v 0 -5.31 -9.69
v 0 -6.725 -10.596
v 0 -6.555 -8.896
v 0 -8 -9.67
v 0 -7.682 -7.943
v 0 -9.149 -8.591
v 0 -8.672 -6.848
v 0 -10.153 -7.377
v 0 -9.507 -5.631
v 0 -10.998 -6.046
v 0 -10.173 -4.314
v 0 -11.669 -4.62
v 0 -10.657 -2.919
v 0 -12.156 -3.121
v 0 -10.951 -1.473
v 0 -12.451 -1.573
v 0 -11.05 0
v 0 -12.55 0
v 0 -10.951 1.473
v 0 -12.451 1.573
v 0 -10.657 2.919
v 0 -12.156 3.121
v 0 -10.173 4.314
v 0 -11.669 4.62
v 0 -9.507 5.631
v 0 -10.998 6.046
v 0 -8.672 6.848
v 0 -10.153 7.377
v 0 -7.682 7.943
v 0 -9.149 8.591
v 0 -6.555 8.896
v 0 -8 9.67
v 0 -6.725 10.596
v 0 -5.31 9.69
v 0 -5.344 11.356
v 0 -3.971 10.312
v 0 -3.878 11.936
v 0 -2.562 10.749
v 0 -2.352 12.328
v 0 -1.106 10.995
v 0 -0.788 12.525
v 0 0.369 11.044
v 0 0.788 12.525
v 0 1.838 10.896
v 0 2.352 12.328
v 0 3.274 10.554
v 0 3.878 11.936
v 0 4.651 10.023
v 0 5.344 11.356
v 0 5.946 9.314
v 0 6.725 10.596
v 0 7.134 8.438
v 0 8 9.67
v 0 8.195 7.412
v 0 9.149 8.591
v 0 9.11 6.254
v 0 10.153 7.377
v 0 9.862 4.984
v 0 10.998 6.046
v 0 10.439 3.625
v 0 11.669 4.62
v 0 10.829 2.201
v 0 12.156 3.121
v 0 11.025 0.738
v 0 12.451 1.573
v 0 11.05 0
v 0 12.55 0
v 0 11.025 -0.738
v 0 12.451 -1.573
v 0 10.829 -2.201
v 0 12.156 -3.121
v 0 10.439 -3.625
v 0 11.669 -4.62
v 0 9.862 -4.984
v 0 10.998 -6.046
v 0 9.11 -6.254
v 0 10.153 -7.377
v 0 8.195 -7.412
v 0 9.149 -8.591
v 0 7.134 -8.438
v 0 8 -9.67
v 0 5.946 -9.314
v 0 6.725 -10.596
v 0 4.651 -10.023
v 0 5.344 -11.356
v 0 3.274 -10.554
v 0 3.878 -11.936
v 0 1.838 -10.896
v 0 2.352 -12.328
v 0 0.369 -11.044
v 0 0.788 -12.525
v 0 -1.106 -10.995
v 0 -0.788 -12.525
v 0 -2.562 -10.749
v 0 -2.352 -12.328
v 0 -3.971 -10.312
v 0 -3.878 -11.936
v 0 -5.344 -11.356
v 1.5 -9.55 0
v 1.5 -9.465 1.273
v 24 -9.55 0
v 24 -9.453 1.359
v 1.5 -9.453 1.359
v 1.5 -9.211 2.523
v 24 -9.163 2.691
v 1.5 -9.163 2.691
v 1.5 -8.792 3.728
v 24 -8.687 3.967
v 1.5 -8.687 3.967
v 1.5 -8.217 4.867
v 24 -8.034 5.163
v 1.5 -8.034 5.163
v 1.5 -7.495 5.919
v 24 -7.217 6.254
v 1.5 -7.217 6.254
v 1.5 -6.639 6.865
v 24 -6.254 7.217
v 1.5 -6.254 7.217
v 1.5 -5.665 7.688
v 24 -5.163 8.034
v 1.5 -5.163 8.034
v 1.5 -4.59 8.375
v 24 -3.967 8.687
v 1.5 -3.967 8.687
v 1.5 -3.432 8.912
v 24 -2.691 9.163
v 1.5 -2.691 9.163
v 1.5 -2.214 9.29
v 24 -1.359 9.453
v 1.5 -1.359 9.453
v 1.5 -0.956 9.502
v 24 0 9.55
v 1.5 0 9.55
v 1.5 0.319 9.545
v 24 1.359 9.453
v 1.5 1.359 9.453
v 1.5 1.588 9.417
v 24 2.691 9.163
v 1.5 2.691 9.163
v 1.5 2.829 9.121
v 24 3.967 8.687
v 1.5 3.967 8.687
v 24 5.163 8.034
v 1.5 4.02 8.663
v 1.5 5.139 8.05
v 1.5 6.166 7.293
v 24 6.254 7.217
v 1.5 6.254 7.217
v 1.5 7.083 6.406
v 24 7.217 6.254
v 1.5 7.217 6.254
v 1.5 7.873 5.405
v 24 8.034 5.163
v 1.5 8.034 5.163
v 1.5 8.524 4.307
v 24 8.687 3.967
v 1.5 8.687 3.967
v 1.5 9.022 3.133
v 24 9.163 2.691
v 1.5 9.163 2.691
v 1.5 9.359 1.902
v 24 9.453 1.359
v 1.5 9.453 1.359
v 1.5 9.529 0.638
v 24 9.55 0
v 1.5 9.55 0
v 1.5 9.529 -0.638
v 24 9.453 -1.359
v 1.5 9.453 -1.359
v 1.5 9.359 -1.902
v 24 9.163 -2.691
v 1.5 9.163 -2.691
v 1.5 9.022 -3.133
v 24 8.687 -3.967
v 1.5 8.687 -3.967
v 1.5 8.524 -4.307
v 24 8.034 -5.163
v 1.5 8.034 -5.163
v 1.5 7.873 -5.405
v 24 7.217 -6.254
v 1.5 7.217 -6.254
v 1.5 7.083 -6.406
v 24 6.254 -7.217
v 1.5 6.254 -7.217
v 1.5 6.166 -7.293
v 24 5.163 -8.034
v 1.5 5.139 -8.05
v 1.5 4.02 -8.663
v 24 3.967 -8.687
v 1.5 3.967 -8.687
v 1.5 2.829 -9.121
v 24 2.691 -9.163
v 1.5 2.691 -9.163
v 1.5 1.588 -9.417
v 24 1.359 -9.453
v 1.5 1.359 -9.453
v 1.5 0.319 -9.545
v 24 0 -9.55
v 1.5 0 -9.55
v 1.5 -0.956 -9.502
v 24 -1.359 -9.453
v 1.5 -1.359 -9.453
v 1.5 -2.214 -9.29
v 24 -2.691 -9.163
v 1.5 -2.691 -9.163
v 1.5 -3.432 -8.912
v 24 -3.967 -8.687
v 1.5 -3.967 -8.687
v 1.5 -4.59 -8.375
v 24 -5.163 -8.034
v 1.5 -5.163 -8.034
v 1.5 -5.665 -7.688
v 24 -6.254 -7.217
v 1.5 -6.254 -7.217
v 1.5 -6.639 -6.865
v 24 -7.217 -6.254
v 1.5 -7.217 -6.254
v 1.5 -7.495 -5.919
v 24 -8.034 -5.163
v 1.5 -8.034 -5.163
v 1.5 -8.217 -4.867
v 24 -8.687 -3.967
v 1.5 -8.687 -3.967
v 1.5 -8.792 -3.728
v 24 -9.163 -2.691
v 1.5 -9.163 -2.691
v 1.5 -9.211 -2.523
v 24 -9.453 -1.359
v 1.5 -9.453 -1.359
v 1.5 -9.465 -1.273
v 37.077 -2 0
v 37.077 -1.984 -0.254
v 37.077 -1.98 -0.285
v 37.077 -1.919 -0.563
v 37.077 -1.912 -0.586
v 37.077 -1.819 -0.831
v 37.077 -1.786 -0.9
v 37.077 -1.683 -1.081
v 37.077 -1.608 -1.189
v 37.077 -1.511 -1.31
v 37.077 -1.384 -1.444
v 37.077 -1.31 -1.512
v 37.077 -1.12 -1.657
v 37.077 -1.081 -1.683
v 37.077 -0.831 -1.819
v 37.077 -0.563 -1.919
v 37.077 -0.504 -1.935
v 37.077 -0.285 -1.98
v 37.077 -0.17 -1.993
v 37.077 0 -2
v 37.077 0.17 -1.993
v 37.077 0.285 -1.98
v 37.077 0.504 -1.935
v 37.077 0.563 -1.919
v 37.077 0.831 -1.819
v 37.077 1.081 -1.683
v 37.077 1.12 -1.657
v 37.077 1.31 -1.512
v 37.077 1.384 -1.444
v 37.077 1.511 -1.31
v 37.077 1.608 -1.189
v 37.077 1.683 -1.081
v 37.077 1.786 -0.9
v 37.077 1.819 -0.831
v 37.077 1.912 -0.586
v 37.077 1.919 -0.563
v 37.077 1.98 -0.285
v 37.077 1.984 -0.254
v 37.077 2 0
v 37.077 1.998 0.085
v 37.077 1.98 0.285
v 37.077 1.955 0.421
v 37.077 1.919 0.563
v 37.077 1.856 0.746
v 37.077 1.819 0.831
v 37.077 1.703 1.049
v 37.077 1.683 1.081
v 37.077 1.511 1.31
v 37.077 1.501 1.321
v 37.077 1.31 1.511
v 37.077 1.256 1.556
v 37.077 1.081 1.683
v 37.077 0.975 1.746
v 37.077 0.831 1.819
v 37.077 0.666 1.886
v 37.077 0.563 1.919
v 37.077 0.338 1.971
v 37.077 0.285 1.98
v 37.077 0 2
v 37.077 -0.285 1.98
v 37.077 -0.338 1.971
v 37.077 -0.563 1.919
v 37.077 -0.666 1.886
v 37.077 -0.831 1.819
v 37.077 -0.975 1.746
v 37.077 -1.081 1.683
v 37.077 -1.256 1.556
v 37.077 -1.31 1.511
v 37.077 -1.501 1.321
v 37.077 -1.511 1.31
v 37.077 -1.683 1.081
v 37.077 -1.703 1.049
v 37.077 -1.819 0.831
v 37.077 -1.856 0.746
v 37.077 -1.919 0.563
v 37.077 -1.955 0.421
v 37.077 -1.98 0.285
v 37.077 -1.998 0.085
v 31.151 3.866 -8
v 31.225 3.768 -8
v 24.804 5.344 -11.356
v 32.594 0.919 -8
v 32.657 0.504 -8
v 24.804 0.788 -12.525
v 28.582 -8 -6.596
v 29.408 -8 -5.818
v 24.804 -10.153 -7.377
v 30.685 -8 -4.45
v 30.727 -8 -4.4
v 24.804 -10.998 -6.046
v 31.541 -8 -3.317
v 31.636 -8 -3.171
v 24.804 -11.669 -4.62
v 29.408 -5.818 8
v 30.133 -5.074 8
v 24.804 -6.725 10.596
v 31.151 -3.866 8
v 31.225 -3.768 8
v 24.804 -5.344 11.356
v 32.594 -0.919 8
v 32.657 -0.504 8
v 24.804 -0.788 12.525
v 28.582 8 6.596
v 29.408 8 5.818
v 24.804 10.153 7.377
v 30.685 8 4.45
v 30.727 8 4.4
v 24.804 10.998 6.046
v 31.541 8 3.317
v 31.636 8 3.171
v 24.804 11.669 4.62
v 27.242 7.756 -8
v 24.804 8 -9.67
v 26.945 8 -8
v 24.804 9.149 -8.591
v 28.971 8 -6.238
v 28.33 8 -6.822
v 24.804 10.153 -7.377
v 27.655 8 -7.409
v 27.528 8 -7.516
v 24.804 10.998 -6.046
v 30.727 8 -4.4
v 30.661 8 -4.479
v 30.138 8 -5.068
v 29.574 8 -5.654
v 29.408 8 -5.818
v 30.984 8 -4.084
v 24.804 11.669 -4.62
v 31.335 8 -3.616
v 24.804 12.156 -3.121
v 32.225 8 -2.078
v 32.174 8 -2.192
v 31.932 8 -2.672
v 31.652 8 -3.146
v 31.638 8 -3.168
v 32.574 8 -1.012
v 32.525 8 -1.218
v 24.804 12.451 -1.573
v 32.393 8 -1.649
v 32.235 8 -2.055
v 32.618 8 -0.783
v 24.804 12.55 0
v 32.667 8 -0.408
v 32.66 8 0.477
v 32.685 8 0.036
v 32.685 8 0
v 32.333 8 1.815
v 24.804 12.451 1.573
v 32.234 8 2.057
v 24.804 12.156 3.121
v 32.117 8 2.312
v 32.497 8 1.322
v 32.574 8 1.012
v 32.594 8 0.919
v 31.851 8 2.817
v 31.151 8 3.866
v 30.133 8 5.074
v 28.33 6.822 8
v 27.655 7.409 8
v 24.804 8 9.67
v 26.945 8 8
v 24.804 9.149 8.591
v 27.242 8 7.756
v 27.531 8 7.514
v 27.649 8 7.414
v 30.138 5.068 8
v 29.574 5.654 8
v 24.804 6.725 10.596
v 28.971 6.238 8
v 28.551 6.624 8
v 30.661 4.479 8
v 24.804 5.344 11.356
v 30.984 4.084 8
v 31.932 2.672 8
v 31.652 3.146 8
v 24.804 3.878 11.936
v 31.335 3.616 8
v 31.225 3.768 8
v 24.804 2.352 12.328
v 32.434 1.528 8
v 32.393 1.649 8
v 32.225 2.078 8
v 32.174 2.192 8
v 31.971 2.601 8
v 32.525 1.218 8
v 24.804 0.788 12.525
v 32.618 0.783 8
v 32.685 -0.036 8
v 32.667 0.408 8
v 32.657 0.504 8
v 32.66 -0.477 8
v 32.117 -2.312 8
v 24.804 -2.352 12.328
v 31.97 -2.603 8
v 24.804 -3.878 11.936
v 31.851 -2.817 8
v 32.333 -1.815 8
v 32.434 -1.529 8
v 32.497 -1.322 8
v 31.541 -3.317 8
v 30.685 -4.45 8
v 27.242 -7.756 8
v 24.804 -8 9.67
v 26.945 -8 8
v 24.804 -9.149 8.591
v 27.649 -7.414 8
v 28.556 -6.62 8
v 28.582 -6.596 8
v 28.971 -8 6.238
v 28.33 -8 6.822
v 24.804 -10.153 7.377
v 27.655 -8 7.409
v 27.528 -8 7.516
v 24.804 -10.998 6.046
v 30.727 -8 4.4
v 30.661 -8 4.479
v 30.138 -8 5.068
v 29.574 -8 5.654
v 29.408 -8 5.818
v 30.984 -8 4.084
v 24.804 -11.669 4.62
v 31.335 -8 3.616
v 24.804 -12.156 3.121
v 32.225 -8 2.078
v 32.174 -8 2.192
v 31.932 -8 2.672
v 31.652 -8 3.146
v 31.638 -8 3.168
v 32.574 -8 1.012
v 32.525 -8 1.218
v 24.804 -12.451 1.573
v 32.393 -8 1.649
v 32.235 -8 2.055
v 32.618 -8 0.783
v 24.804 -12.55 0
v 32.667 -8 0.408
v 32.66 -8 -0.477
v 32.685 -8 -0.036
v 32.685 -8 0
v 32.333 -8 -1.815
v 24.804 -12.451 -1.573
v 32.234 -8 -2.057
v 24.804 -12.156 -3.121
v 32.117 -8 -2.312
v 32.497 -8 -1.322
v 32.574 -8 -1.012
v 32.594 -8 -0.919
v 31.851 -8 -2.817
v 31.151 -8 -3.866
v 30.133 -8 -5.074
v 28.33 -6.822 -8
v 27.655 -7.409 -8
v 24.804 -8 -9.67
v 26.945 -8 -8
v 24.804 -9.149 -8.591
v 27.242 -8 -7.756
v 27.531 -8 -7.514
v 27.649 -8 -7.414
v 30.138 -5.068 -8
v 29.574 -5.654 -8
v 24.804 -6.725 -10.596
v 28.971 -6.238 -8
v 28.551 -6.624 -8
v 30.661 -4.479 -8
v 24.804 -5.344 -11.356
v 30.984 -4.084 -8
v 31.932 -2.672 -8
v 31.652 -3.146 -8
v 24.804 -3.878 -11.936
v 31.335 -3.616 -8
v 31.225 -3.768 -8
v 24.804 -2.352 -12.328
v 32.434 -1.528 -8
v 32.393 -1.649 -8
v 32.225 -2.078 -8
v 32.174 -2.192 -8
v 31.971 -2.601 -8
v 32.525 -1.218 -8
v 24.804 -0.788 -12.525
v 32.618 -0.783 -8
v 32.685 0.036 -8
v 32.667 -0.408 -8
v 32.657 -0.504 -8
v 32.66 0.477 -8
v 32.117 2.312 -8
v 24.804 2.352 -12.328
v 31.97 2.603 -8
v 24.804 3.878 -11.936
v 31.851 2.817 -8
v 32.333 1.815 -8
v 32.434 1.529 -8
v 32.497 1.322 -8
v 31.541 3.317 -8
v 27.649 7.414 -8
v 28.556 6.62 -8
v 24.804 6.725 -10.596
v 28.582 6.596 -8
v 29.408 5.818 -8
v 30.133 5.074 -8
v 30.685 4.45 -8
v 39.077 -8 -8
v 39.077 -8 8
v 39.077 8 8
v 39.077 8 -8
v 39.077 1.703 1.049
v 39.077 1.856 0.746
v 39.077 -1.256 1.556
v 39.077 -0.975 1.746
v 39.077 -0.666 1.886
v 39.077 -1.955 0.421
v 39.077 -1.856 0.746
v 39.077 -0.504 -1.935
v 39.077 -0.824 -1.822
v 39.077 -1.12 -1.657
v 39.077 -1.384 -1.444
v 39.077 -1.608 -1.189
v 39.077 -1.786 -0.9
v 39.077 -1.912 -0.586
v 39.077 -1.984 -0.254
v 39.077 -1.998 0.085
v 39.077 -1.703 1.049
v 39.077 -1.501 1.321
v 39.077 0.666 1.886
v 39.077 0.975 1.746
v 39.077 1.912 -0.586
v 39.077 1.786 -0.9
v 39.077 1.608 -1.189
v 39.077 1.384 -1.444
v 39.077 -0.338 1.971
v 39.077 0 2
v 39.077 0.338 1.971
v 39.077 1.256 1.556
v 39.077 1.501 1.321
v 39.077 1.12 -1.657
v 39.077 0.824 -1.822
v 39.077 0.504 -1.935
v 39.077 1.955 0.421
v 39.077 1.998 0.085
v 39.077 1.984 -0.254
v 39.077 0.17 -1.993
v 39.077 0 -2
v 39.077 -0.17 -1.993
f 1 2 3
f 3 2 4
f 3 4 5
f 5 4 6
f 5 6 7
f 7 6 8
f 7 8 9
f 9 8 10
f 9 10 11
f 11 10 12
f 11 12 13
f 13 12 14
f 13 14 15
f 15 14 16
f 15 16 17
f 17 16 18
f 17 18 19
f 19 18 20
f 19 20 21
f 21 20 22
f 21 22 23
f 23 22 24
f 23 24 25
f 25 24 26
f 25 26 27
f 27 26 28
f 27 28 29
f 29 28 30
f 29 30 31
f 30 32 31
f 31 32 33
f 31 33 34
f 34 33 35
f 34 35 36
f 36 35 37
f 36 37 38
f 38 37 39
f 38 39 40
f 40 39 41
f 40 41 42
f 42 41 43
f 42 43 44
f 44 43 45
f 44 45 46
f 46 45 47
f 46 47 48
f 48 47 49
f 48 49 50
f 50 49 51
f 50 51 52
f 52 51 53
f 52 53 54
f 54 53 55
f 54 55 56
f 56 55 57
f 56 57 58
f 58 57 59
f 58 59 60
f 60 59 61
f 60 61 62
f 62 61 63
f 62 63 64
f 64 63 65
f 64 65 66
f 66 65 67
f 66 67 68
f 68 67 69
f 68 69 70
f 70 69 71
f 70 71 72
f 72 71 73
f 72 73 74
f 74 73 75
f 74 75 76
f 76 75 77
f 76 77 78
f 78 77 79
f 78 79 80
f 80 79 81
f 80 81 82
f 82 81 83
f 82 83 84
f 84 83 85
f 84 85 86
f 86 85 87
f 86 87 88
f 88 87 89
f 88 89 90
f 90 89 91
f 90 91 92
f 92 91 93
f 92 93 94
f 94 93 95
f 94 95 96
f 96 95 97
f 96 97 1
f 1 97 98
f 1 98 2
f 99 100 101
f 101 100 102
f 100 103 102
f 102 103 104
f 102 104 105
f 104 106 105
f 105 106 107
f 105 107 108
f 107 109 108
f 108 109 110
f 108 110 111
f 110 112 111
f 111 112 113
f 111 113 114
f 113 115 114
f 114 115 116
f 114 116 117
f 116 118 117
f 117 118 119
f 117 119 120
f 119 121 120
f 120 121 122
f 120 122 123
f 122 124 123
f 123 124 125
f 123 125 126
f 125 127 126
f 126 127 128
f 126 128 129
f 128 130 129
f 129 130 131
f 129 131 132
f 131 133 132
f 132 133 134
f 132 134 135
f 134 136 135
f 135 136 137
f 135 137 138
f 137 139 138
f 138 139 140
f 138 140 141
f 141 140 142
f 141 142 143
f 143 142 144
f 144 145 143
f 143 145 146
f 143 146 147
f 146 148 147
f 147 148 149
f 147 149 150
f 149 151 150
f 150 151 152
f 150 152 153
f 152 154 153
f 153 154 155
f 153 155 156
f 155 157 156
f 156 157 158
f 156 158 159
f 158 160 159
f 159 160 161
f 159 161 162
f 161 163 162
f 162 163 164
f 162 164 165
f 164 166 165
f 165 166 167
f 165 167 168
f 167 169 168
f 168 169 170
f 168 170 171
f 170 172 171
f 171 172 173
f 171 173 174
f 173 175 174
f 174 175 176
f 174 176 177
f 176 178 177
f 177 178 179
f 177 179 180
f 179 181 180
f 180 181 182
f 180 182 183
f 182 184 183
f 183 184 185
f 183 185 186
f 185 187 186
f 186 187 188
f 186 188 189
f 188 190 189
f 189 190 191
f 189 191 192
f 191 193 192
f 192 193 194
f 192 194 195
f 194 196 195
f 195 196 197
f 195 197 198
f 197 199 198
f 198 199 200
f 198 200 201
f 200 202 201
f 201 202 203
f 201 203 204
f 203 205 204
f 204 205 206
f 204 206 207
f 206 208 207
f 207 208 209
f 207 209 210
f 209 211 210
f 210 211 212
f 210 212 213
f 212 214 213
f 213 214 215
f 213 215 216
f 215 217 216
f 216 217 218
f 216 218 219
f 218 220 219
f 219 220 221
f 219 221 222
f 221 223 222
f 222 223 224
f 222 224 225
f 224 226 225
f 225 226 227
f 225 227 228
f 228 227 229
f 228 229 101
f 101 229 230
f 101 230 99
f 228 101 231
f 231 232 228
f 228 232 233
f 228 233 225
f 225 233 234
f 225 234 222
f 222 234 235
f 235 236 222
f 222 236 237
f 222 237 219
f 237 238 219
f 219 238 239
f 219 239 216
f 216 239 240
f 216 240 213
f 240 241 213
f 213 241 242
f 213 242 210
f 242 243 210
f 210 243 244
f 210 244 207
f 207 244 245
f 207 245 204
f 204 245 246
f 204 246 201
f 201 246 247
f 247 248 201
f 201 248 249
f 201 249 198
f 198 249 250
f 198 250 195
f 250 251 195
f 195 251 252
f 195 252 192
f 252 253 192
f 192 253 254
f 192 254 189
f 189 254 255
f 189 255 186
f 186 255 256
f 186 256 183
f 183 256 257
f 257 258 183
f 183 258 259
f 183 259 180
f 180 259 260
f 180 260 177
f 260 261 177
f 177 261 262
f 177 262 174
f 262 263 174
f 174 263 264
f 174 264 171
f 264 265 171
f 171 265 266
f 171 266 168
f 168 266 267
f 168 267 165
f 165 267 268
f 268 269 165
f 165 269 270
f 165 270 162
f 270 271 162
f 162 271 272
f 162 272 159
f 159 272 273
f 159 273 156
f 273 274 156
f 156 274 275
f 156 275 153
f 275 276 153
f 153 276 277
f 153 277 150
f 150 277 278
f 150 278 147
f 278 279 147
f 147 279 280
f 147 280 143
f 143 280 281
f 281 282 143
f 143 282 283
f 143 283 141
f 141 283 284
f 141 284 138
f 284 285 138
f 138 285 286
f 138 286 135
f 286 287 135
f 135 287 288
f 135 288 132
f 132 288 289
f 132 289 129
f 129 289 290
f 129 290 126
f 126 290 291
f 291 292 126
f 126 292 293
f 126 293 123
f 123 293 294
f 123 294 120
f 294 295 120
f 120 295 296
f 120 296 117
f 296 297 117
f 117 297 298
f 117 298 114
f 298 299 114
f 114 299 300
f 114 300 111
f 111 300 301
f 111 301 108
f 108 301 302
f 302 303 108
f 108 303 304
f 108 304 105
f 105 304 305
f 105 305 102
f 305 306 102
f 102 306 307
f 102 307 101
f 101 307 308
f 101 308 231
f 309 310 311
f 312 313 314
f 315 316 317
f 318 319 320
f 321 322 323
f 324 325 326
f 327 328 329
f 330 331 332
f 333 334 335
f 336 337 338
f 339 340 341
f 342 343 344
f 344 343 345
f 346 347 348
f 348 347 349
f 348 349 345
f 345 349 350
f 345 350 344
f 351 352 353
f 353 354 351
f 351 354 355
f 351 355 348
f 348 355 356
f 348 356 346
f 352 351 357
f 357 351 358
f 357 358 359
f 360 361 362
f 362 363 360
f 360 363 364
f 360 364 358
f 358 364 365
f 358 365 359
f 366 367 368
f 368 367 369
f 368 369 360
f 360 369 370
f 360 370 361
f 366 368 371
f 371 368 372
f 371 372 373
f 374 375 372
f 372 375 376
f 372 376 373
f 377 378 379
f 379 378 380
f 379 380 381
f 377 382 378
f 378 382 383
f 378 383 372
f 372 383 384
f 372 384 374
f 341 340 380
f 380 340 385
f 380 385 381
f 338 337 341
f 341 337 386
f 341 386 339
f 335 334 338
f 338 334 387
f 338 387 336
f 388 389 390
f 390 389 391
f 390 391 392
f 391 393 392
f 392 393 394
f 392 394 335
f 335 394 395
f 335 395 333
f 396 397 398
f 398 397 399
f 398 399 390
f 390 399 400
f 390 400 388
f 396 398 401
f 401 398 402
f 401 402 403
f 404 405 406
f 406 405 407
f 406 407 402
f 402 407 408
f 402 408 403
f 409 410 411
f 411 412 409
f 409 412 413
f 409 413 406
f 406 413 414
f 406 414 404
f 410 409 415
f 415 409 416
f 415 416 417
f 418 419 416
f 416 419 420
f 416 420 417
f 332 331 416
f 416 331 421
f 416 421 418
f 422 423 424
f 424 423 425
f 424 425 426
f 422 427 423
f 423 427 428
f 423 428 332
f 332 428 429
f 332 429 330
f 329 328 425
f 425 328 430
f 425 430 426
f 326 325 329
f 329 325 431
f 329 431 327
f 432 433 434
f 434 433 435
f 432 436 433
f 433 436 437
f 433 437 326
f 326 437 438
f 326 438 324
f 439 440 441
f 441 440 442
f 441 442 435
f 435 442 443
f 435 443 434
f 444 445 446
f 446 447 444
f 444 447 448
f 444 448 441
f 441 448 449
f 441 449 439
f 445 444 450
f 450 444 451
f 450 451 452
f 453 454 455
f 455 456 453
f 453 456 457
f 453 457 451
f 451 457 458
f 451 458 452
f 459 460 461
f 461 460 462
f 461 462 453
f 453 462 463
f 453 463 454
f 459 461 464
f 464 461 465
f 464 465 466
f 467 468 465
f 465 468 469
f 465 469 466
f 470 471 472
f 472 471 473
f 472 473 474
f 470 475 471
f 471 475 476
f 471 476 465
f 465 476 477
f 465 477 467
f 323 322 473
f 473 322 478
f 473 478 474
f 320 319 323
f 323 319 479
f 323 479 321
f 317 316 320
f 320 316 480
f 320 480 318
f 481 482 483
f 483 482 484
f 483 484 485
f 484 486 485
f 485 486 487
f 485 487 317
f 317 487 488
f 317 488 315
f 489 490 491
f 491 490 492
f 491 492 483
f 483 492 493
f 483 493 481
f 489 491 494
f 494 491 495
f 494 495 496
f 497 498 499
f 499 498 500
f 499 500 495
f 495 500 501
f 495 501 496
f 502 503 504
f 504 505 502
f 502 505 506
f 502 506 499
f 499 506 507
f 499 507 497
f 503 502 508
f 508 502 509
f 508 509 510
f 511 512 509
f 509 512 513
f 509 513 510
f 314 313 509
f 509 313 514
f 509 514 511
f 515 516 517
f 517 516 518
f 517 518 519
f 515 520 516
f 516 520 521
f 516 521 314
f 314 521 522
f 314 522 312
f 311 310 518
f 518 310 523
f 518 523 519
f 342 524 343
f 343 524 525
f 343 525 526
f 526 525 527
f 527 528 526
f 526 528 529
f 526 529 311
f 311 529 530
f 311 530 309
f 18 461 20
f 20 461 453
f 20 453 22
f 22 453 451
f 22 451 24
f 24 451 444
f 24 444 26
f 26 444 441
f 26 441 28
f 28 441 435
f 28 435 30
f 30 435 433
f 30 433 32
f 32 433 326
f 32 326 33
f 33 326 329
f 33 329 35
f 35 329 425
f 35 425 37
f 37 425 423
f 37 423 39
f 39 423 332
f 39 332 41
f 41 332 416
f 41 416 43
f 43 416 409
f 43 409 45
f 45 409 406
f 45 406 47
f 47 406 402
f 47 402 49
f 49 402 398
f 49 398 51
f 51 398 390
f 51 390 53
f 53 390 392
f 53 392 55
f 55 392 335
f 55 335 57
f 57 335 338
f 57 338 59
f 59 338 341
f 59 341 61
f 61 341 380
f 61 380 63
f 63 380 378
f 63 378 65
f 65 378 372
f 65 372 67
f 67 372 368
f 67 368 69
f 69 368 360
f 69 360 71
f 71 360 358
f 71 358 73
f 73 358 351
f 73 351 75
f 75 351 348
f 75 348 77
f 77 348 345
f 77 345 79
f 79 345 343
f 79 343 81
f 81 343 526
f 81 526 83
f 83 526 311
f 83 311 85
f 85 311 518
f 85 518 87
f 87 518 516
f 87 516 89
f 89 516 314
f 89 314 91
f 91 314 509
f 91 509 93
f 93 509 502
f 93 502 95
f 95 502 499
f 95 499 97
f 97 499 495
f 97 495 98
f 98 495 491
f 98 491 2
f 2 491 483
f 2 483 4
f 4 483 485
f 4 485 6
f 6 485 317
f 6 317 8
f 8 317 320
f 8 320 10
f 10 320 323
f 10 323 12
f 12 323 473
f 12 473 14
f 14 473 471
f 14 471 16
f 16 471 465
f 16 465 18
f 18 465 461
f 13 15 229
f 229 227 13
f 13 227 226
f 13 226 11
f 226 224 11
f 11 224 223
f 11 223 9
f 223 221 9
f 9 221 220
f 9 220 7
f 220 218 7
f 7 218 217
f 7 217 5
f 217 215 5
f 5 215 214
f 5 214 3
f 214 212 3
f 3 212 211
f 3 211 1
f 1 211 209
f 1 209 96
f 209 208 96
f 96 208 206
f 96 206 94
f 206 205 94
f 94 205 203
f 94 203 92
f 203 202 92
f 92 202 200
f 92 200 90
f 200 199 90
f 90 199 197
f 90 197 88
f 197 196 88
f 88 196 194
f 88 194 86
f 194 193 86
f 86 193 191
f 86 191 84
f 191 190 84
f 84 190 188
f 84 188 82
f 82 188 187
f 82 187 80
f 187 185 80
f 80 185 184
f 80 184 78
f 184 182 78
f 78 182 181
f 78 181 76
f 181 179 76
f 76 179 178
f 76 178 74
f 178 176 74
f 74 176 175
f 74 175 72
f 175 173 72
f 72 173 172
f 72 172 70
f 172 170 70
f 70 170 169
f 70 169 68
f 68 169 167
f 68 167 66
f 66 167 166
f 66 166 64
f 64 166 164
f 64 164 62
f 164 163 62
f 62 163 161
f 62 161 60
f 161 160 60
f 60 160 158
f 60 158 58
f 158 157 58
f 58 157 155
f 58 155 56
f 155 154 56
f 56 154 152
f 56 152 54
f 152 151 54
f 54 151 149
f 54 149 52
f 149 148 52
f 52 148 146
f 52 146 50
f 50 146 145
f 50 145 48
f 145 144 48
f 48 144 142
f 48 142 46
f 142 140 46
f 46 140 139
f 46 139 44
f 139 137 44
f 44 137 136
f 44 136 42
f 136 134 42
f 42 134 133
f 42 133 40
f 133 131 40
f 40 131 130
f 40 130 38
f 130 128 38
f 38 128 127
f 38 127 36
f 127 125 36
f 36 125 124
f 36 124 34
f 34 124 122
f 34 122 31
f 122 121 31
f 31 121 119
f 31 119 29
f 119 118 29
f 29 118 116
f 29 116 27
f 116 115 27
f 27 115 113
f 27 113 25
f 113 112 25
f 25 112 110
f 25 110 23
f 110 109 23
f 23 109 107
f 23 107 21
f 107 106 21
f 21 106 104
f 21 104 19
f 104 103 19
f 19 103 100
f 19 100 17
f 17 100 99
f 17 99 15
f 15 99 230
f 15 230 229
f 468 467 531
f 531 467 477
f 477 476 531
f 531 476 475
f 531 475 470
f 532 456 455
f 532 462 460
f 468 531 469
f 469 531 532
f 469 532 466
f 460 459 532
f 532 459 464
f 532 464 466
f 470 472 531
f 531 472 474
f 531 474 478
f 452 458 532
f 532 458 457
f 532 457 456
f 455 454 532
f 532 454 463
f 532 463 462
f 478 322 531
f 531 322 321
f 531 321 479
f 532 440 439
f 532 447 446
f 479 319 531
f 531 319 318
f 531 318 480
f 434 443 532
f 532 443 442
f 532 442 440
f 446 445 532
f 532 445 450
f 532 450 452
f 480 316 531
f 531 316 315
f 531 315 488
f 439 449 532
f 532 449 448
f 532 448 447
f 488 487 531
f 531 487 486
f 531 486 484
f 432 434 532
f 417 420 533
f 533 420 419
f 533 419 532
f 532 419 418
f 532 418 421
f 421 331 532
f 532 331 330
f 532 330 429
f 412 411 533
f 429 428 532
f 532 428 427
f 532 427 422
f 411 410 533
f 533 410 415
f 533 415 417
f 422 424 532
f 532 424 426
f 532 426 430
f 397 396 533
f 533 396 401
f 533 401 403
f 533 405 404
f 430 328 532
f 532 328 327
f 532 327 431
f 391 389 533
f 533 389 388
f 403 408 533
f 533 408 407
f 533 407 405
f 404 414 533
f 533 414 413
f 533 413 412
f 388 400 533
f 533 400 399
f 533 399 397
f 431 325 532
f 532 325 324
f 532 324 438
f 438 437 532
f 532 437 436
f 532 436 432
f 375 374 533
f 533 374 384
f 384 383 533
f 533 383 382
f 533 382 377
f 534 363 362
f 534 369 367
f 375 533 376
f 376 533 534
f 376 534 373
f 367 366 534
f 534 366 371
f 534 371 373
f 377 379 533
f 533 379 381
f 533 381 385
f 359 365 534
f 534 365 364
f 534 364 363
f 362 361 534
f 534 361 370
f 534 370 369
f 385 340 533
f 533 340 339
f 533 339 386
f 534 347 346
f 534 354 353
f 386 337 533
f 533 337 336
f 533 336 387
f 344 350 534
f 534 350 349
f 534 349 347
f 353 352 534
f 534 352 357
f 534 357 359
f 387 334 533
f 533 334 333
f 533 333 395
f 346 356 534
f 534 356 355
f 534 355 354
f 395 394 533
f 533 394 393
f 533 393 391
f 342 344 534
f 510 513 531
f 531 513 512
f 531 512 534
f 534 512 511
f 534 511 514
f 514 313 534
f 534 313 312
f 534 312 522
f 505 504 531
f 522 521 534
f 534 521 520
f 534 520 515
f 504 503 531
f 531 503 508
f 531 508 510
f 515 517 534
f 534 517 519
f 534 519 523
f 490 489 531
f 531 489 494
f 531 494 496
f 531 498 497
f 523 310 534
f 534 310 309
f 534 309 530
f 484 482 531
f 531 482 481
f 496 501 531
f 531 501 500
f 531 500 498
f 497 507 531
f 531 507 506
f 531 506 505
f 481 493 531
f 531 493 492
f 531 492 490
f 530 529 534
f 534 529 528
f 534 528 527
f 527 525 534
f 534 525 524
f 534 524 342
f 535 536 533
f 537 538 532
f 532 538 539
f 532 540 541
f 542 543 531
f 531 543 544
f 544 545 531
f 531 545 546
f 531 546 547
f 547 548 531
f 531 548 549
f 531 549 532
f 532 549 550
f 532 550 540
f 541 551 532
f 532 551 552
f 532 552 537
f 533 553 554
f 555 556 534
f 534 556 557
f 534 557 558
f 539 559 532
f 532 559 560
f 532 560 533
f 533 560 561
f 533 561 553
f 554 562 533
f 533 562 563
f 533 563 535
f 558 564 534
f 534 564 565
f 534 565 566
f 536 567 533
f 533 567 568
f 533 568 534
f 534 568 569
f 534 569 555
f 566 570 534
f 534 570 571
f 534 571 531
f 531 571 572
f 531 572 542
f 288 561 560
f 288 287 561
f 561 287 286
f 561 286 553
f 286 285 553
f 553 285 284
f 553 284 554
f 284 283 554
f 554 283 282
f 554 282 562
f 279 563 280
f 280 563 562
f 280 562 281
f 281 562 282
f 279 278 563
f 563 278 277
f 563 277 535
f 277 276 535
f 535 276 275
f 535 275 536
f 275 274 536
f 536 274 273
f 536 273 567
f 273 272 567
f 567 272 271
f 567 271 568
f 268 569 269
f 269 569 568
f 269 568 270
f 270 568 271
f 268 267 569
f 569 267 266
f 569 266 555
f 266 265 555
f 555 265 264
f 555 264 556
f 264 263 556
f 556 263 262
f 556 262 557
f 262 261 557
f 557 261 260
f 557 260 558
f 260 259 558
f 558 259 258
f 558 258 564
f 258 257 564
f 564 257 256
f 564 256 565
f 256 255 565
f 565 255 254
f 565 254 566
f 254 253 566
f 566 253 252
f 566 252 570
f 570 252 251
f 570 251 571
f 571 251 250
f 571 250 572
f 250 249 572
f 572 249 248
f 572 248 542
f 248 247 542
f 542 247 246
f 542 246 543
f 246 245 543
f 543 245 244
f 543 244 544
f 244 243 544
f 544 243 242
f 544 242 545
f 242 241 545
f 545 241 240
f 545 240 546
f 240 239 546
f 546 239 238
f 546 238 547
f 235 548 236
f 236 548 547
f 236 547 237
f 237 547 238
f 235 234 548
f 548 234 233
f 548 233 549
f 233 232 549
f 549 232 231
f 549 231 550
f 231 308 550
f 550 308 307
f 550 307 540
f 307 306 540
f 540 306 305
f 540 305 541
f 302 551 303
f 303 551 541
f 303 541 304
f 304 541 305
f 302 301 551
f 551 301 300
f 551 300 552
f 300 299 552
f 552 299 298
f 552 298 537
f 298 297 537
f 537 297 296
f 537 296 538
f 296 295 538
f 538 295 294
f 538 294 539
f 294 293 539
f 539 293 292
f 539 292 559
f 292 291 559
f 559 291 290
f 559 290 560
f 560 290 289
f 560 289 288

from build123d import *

# Parameters (mm, degrees)
CHAFL_N1_SIZE                       = 1.5
CROQUIS3_W                          = 16
CROQUIS3_H                          = 16
CROQUIS3_R                          = 2
SALIENTE_EXTRUIR1_DEPTH             = 2
SALIENTE_EXTRUIR1_DIRECTION_2_REACH = 43.106


with BuildPart() as part:
    # Croquis1 → Revolución1 (revolve)
    with BuildSketch(Plane.XY, mode=Mode.PRIVATE) as revoluci_n1_sk:
        Polygon((0, 9.55), (24, 9.55), (37.076983597, 2), (37.076983597, 5.464101615), (24.803847577, 12.55), (0, 12.55), align=None)
    revolve(revoluci_n1_sk.sketch.rotate(Axis((0, 0, 0), (1, 0, 0)), 180), axis=Axis((0, 0, 0), (1, 0, 0)))

    # Chaflán1
    chafl_n1_edges = [part.edges().sort_by_distance(p)[0] for p in [
        (0, 9.55, 0),
    ]]
    chamfer(chafl_n1_edges, length=CHAFL_N1_SIZE)

    # Croquis3 → Saliente-Extruir1 (add)
    with BuildSketch(Plane(origin=(37.076983597, 0, 0), x_dir=(0, 0, -1), z_dir=(1, 0, 0))):
        Rectangle(CROQUIS3_W, CROQUIS3_H)
        with Locations(Location((0, 0, 0), (0, 0, 270))):
            Circle(CROQUIS3_R, mode=Mode.SUBTRACT)
    extrude(amount=SALIENTE_EXTRUIR1_DEPTH)

    # Croquis3 → Saliente-Extruir1 direction 2 (add, up to next)
    with BuildSketch(Plane(origin=(37.076983597, 0, 0), x_dir=(0, 0, -1), z_dir=(1, 0, 0)), mode=Mode.PRIVATE) as saliente_extruir1_direction_2_sk1:
        Rectangle(CROQUIS3_W, CROQUIS3_H)
        with Locations(Location((0, 0, 0), (0, 0, 270))):
            Circle(CROQUIS3_R, mode=Mode.SUBTRACT)
    saliente_extruir1_direction_2_tool1 = extrude(saliente_extruir1_direction_2_sk1.sketch, amount=-SALIENTE_EXTRUIR1_DIRECTION_2_REACH, mode=Mode.PRIVATE) - part.part
    add(saliente_extruir1_direction_2_tool1.solids().sort_by_distance((37.076984, -7.773726, 0))[0])


solid = part.part
